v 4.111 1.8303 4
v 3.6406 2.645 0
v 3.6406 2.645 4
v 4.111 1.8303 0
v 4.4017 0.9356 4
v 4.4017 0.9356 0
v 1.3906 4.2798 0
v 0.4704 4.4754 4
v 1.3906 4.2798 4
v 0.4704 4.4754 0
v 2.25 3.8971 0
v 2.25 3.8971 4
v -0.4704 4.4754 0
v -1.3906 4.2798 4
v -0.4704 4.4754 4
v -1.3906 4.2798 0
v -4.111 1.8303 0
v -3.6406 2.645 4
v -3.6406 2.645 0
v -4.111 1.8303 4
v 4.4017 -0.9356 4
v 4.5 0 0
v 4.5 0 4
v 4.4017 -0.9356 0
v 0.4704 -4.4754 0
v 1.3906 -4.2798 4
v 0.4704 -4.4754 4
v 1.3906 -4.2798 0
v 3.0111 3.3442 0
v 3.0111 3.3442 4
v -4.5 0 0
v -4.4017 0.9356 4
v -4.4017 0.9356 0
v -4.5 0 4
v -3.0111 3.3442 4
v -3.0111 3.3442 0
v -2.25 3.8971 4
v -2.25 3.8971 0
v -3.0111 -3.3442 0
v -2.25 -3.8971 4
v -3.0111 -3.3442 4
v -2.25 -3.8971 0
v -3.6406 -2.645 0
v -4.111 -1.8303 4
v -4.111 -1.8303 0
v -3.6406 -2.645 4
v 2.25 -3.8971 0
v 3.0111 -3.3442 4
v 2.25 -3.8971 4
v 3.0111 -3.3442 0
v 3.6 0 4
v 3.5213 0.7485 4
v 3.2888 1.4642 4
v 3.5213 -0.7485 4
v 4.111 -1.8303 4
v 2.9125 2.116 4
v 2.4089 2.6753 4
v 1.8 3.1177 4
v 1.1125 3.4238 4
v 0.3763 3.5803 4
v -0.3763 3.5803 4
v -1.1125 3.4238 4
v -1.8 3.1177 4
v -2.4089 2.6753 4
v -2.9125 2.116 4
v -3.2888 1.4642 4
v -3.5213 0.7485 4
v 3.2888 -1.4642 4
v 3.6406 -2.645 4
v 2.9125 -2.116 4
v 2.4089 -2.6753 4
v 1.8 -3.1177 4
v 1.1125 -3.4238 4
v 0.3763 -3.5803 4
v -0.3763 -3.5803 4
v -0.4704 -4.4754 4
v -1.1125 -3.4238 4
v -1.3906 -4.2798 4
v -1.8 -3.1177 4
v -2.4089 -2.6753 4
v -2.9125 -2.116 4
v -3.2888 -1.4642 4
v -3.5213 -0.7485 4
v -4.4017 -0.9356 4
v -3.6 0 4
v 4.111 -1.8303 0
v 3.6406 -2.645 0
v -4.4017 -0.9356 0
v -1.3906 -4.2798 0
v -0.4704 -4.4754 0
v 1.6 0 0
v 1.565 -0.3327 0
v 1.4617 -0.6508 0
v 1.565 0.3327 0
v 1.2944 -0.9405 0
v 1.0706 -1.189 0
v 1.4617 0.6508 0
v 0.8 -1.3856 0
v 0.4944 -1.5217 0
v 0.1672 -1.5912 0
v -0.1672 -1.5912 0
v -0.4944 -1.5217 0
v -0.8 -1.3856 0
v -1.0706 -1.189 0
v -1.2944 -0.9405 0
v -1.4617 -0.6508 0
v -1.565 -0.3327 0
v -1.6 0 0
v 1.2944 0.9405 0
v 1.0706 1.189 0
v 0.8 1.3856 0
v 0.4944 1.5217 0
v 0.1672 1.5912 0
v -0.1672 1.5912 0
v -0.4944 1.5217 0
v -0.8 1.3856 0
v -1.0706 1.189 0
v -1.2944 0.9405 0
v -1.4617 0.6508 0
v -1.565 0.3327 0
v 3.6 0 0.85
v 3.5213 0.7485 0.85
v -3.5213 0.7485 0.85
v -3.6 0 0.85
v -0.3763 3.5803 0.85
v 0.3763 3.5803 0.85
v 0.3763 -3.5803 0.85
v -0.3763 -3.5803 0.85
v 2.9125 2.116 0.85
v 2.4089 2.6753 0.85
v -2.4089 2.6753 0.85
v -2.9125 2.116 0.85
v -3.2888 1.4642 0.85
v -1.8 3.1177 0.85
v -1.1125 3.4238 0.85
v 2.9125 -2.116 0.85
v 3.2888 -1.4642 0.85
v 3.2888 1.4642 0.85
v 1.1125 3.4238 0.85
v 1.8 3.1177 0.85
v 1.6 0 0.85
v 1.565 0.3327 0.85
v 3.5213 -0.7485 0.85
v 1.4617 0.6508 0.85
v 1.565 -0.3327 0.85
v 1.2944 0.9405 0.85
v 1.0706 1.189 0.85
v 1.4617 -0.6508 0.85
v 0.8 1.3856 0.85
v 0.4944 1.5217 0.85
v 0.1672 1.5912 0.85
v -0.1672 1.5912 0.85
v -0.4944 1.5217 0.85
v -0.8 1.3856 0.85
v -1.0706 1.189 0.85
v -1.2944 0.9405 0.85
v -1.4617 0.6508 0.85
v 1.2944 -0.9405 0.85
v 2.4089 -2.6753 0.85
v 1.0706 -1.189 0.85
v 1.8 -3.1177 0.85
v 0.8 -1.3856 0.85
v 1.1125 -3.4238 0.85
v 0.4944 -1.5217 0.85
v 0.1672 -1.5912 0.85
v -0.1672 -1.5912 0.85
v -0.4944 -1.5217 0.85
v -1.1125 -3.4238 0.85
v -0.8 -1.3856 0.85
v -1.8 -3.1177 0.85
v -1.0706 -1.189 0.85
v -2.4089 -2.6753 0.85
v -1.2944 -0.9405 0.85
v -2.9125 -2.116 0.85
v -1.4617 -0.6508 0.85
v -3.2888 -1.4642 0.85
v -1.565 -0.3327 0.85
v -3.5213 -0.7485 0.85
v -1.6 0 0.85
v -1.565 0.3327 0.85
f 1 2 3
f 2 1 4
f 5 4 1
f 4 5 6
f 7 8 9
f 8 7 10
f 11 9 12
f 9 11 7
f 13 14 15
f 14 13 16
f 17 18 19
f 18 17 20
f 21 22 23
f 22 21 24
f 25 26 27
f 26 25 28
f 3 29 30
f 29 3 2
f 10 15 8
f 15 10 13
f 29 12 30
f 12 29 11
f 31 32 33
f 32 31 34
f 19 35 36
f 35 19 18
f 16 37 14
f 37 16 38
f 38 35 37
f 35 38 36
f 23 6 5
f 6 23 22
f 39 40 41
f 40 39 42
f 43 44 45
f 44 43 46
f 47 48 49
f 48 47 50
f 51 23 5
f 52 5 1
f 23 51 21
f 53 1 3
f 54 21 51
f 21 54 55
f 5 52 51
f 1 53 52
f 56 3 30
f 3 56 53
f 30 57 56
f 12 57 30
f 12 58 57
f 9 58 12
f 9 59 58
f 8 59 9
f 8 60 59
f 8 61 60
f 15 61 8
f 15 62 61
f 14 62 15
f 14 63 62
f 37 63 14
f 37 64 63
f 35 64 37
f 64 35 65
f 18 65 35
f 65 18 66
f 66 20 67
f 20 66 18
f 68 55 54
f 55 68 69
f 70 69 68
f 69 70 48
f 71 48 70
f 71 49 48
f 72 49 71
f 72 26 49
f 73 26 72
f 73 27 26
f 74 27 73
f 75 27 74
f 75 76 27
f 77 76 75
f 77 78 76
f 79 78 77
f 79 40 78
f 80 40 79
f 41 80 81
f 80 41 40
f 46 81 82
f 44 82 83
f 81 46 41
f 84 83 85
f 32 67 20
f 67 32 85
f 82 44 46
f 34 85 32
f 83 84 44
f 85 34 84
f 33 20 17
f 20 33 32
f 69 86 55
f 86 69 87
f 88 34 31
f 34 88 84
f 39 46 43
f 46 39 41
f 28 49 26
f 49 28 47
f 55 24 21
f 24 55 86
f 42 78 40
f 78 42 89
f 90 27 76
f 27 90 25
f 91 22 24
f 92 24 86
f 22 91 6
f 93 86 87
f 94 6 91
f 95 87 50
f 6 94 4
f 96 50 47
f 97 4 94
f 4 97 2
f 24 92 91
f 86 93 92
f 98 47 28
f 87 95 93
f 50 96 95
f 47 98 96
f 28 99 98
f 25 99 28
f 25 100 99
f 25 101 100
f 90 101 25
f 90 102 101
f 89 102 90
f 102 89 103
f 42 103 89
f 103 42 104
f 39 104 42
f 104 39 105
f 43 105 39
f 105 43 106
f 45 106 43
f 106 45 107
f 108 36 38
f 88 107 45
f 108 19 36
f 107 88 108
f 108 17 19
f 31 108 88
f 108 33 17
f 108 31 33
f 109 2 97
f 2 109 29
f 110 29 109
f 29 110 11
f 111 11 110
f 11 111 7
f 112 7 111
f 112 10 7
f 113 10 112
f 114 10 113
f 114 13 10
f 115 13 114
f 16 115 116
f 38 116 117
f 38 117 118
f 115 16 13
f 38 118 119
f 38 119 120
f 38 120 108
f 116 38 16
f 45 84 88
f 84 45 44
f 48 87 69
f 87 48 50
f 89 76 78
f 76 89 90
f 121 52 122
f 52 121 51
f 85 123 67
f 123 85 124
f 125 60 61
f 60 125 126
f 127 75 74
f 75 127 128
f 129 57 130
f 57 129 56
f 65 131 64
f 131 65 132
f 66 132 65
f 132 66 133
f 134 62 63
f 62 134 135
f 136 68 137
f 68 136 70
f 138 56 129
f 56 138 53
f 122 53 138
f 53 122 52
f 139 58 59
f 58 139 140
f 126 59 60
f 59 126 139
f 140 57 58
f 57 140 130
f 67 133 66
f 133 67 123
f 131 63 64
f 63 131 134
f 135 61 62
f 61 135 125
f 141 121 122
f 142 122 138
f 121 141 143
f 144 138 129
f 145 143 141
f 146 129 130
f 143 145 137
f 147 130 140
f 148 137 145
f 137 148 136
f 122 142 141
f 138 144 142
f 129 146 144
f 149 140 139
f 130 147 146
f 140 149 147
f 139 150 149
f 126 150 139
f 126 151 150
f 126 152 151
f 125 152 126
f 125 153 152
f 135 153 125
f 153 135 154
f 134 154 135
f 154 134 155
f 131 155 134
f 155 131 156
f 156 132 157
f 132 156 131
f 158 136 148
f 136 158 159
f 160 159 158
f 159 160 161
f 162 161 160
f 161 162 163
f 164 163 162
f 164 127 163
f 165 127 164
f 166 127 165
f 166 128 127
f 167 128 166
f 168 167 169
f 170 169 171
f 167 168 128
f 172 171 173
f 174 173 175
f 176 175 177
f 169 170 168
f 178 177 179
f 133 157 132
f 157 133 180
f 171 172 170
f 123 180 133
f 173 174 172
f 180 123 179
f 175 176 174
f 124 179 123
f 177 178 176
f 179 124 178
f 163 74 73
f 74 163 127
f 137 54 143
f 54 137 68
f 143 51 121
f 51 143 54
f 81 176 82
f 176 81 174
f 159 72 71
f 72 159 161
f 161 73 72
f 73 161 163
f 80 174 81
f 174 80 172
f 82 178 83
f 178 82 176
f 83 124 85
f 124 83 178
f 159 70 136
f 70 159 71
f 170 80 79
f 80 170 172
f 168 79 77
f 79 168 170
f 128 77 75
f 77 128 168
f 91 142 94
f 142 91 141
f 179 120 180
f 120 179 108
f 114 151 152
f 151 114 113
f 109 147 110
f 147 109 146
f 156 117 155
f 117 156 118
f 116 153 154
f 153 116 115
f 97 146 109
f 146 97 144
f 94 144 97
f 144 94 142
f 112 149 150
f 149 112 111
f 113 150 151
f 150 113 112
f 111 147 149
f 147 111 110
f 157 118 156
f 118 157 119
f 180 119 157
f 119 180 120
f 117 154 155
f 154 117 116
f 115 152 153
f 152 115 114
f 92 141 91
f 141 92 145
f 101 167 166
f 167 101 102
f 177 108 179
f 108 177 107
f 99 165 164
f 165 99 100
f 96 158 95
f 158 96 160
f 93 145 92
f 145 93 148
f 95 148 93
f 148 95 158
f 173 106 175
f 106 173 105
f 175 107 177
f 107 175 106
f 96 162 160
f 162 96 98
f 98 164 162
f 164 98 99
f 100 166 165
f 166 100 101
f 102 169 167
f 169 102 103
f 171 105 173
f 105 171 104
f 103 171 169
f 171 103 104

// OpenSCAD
$fn=30;

difference() {
   cylinder(d=9,h=4);
   translate([0,0,.17*5]) cylinder(d=7.2,h=4);
   translate([0,0,-0.1]) cylinder(d=3.2,h=4);
}
